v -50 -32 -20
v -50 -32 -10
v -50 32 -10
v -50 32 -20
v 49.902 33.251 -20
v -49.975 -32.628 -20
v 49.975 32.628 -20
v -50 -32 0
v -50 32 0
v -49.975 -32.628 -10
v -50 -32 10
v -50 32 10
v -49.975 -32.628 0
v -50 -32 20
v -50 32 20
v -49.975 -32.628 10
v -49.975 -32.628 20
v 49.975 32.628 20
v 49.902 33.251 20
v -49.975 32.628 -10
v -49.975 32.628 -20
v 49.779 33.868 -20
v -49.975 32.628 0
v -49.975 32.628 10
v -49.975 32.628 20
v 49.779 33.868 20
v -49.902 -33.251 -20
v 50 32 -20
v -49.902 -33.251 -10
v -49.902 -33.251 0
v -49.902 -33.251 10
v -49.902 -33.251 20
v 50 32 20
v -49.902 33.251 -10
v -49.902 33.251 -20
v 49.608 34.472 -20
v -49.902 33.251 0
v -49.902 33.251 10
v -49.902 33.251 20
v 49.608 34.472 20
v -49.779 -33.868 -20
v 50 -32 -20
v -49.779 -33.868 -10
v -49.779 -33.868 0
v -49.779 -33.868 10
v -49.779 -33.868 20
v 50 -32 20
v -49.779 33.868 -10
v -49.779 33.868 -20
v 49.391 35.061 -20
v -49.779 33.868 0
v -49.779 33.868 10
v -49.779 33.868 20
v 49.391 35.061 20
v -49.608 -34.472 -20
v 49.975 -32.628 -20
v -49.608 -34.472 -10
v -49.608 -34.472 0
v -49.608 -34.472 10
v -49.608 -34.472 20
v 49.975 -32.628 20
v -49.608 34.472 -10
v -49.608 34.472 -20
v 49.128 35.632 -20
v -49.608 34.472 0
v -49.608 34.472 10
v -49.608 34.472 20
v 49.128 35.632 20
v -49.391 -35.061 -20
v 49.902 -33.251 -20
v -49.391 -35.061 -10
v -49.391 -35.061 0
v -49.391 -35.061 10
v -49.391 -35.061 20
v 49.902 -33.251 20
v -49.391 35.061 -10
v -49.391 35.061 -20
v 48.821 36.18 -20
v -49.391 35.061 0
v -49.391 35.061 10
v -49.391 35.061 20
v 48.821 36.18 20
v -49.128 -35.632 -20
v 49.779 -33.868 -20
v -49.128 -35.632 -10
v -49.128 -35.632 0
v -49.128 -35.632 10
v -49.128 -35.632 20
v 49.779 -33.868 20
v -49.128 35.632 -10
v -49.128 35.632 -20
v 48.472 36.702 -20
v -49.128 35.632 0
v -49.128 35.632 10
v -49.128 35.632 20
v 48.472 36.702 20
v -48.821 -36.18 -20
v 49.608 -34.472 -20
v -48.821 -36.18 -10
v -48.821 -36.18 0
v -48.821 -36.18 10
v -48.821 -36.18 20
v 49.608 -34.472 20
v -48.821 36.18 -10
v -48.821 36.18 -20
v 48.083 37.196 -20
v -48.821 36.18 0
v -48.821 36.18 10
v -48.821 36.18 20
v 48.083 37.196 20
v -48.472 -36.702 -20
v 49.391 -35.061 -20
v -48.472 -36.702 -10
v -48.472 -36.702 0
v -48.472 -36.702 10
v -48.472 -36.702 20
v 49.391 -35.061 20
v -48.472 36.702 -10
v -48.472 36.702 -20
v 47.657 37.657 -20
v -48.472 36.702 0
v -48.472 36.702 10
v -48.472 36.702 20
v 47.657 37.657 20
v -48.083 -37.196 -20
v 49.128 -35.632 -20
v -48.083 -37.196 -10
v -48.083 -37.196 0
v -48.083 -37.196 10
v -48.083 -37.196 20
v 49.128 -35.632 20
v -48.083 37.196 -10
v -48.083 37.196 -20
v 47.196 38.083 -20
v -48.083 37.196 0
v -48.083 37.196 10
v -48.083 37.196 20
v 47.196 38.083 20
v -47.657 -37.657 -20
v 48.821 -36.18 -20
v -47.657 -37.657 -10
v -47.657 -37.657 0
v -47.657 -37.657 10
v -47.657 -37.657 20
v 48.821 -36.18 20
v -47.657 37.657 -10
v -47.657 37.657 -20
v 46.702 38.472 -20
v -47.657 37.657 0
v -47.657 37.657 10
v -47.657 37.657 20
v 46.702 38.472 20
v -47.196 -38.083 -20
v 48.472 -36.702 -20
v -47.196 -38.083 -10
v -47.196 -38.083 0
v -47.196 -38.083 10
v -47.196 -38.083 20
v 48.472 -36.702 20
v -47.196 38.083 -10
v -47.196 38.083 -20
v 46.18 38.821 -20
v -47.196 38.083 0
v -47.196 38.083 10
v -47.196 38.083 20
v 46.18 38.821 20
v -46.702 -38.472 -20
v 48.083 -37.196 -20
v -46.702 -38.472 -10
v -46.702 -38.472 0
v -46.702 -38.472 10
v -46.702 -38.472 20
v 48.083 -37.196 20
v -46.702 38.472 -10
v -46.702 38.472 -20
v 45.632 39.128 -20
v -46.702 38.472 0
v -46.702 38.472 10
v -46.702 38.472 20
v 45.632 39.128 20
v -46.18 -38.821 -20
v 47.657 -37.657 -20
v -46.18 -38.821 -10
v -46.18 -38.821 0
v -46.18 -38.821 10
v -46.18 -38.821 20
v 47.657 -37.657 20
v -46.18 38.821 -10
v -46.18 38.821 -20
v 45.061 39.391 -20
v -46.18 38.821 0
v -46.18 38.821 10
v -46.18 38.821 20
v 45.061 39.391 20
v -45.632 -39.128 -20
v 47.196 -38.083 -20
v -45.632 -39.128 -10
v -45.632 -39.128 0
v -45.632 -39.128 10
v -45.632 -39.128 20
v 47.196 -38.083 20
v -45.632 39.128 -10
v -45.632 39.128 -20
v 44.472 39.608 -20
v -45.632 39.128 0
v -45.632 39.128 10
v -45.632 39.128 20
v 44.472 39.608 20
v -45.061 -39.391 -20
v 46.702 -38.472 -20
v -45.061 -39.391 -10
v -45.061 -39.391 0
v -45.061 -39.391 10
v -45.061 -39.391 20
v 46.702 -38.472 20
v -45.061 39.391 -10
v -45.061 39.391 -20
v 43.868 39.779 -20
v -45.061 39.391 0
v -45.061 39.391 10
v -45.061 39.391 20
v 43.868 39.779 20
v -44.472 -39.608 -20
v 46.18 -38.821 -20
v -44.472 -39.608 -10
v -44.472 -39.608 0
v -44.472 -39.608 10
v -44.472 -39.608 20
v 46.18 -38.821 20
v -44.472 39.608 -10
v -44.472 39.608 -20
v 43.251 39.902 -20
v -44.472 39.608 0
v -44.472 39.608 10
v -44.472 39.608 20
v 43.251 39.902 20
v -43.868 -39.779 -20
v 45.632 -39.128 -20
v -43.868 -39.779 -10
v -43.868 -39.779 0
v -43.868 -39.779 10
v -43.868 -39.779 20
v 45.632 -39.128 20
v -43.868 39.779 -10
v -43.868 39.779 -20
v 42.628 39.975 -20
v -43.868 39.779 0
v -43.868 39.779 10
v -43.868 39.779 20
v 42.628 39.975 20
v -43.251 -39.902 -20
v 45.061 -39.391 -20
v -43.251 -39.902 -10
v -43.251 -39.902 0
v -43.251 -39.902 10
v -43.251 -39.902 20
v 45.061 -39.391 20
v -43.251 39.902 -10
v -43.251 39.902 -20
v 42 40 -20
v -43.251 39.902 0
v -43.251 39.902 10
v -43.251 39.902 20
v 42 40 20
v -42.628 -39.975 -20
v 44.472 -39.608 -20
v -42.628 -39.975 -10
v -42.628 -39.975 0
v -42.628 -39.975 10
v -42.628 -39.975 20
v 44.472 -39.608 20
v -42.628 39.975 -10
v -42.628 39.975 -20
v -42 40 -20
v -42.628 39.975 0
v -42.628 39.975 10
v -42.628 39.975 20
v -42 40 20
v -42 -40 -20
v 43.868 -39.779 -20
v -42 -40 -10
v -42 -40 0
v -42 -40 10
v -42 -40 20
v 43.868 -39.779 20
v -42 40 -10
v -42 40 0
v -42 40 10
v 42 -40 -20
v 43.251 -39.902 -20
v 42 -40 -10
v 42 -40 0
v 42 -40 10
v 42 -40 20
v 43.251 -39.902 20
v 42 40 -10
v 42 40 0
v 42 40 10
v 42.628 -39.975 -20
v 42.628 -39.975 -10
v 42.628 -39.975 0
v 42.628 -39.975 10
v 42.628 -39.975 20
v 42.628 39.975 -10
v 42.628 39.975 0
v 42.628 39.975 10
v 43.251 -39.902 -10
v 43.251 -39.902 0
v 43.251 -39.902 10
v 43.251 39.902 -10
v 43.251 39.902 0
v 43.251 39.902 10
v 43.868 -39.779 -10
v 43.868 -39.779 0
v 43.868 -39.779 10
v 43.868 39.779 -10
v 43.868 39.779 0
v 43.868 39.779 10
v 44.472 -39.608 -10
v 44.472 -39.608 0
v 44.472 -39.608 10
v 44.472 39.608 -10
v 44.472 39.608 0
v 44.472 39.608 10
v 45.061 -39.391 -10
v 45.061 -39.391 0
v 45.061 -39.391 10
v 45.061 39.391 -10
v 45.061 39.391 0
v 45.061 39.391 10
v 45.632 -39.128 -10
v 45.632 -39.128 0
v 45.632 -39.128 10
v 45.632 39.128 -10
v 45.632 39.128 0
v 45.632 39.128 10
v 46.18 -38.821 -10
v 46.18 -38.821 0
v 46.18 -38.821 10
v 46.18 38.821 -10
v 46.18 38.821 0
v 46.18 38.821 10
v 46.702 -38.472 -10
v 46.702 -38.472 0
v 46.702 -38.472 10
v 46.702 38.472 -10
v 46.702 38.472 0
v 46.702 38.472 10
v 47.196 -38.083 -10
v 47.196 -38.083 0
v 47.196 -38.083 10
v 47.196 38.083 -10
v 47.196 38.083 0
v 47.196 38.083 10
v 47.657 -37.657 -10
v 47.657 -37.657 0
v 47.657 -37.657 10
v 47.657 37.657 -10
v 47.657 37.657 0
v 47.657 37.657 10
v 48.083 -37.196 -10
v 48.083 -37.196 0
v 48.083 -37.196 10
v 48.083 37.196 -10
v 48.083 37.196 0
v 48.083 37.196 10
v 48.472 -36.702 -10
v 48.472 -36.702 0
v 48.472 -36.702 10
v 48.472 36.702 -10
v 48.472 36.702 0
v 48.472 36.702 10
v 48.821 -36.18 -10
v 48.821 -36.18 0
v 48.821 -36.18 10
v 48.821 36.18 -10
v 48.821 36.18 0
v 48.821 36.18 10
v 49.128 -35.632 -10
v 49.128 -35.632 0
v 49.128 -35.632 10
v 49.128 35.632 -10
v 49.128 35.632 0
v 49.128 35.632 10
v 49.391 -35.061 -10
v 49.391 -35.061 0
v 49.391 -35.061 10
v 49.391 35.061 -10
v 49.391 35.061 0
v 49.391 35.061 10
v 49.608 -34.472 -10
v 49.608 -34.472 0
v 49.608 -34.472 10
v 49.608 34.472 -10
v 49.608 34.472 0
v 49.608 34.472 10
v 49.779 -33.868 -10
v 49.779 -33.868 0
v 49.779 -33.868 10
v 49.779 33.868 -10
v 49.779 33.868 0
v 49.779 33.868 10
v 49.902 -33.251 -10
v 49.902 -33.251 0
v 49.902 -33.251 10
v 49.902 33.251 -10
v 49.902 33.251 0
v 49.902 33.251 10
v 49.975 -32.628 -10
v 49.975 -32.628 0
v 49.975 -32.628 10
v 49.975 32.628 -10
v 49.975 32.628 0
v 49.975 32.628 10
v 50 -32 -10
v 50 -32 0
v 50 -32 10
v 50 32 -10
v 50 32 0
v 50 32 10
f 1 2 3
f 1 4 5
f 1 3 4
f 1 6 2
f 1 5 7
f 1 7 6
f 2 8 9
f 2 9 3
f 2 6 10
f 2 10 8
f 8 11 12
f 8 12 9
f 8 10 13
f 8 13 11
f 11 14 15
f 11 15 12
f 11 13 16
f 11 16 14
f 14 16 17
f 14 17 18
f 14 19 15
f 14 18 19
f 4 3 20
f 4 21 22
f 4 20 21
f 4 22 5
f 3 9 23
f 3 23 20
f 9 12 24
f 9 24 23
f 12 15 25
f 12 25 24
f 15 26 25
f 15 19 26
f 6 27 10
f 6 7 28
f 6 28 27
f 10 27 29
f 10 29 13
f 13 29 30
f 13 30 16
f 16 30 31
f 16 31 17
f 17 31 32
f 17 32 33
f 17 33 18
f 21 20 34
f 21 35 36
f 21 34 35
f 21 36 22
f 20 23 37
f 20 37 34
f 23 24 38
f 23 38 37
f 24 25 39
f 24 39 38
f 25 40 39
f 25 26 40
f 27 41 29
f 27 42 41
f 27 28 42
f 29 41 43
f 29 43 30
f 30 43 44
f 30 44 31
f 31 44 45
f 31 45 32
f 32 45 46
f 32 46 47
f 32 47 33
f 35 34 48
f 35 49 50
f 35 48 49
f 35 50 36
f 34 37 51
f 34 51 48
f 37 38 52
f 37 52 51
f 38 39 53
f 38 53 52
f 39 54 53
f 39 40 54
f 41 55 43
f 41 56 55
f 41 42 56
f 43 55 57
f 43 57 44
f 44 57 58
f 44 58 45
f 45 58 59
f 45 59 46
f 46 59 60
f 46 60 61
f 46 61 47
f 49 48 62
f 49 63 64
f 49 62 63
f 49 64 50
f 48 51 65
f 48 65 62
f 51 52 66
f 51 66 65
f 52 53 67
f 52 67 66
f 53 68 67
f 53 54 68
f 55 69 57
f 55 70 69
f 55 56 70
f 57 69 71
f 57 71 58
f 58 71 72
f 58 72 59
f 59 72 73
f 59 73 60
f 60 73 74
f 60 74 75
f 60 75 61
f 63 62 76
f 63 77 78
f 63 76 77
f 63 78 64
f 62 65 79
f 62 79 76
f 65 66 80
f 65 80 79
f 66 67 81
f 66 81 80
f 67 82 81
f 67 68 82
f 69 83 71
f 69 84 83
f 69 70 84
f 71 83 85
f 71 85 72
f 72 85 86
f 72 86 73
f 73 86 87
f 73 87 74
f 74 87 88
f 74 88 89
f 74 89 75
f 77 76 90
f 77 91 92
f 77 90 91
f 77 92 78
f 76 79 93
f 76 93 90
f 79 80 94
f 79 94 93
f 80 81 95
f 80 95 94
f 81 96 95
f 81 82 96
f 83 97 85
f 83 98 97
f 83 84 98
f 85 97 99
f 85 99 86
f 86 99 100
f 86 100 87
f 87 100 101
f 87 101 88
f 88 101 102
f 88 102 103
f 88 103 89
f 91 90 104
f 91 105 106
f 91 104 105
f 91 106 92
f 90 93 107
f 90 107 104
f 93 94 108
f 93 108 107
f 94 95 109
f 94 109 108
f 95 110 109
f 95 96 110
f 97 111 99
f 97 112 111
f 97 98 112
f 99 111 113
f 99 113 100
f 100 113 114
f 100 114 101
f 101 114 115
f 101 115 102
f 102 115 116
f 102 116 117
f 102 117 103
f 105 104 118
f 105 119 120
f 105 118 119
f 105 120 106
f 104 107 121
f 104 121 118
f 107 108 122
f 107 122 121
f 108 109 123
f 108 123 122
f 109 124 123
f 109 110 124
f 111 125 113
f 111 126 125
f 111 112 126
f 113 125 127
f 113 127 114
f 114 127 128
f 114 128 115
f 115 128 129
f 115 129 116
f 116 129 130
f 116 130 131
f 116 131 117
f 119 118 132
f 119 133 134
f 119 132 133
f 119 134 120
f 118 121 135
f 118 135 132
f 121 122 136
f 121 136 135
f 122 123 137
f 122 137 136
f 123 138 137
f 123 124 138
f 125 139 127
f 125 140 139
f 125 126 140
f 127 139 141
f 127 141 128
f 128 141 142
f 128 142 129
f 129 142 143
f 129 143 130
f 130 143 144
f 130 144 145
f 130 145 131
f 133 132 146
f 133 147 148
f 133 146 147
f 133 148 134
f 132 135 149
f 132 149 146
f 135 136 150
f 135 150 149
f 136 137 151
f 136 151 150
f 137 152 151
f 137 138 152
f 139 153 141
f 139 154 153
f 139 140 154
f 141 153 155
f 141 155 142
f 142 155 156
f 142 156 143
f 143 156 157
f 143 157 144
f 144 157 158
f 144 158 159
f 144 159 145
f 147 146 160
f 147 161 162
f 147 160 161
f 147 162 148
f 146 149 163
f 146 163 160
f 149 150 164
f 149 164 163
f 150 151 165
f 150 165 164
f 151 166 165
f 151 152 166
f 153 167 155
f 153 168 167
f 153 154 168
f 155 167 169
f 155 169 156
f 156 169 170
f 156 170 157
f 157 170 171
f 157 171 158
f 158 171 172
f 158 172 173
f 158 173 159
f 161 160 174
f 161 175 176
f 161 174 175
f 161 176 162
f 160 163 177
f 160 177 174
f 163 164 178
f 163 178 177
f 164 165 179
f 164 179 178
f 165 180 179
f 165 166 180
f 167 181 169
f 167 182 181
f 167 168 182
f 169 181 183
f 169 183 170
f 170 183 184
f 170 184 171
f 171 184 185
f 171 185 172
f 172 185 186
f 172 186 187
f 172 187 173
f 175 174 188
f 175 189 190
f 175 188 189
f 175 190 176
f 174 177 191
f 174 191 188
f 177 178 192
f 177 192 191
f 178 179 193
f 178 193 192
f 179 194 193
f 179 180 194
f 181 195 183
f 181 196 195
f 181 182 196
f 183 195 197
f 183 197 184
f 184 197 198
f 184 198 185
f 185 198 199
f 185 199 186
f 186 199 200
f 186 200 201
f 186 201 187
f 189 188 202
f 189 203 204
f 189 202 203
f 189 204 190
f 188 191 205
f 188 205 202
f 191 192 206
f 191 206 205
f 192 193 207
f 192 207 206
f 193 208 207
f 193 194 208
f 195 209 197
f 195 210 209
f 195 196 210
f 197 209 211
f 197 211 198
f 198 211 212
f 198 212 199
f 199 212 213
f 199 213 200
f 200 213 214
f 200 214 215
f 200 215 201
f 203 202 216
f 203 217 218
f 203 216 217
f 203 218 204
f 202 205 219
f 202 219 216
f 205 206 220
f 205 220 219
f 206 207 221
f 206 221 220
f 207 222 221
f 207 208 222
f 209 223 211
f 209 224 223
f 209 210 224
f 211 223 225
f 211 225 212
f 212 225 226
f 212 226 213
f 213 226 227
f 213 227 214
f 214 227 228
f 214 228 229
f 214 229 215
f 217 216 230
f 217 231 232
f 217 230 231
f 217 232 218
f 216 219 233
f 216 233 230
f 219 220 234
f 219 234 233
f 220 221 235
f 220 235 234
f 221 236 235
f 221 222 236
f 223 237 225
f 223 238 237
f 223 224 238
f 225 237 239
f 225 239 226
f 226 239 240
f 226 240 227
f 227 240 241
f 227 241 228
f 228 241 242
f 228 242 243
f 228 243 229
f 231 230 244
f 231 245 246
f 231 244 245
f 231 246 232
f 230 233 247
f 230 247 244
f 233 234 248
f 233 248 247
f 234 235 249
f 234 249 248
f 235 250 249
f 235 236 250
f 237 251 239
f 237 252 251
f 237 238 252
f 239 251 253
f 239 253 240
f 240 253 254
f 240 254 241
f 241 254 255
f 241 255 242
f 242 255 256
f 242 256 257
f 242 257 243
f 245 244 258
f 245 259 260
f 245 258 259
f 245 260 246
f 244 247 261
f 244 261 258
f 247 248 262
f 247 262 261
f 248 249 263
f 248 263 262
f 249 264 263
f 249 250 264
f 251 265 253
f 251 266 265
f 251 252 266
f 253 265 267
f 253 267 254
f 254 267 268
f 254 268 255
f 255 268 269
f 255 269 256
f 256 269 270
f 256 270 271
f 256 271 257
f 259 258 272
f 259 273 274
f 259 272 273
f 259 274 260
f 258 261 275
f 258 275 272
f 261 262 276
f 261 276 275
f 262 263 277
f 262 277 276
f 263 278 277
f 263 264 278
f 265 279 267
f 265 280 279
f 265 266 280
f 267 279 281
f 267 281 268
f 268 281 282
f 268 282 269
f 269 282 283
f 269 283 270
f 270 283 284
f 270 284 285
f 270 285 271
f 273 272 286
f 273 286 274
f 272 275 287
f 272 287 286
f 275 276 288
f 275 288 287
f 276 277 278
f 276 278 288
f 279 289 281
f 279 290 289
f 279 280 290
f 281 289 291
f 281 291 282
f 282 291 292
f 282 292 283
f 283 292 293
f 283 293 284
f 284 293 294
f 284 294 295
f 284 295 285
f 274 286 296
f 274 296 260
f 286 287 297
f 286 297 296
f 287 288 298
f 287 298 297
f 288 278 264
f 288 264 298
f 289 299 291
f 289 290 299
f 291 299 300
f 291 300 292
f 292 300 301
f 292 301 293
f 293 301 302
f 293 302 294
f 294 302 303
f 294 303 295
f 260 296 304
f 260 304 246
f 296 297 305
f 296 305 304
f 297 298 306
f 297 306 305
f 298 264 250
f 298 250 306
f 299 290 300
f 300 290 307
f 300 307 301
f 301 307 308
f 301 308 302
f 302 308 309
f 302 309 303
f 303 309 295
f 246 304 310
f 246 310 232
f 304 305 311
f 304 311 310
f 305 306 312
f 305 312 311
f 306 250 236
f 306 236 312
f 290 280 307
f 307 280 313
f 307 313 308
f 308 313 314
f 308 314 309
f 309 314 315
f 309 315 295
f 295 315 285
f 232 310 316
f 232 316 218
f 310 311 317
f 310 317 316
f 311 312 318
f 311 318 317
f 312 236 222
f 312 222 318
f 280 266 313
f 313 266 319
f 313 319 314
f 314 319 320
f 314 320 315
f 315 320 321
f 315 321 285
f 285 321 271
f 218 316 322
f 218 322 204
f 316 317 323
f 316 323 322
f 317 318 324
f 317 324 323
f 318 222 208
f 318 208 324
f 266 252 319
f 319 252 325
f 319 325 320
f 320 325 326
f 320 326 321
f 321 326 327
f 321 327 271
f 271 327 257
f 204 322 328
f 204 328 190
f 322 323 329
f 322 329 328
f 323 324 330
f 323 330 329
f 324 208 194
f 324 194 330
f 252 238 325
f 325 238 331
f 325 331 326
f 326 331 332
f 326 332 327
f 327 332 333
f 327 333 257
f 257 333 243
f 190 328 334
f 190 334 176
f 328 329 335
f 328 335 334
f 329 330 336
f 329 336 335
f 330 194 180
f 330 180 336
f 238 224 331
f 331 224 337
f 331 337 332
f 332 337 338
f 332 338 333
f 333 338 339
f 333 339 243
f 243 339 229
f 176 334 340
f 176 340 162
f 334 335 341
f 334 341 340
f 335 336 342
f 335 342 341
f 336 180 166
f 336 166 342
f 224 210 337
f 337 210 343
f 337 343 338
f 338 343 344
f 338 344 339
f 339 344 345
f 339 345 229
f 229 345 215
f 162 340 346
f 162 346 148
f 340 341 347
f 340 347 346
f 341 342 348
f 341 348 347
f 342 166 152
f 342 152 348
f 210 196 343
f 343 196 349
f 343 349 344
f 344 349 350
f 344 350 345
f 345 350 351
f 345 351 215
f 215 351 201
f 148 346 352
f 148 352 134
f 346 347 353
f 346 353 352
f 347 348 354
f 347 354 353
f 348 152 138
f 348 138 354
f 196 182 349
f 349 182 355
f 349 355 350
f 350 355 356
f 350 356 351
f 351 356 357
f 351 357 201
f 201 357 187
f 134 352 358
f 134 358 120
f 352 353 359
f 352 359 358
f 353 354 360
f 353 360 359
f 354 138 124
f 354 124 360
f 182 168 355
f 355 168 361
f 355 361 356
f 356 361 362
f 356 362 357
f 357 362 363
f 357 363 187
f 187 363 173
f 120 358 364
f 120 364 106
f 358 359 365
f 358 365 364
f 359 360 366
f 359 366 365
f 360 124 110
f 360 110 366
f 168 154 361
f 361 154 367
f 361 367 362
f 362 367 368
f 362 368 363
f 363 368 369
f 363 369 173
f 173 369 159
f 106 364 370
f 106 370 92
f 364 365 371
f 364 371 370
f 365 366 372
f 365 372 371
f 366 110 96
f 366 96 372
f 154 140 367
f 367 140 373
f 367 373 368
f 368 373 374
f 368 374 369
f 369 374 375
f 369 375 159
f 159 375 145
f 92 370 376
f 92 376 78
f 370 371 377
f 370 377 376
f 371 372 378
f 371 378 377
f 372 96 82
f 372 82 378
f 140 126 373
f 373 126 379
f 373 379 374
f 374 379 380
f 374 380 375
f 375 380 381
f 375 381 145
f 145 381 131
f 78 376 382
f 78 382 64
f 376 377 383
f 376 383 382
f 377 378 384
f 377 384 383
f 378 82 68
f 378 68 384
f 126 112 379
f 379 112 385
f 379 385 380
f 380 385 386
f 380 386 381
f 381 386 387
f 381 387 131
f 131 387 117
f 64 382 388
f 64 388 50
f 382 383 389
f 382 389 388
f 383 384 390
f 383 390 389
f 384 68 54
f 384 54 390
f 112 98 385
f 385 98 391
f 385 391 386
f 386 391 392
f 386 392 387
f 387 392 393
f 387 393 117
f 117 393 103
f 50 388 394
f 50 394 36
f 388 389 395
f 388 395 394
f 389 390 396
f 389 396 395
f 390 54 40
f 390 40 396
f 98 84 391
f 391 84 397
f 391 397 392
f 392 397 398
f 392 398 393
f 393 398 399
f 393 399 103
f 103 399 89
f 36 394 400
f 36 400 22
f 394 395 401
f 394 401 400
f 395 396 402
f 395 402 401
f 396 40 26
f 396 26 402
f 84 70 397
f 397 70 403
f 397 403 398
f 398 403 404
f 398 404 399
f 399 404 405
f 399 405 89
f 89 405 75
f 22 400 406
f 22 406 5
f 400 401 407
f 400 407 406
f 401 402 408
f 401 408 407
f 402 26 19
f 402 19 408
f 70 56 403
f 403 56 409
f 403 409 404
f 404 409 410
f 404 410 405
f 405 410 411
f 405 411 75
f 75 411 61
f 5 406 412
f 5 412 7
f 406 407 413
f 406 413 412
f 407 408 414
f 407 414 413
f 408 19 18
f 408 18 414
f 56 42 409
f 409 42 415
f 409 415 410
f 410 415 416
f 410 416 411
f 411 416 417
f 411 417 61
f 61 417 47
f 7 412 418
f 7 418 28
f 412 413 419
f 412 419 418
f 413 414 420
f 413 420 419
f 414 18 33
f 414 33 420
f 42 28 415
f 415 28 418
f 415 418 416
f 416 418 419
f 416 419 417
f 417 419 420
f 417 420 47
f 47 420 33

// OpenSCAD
// Start: lazy_union
default_5_default_5();
// End: lazy_union

// Modules.

// 'PartMaterial undef-default - default 5.0'
module default_5_default_5() {
  // 'None : _combine_solids_and_holes'
  union() {
    // 'default : _combine_solids_and_holes'
    union() {
      // 'hull'
      multmatrix(m=[[1.0, 0.0, 0.0, -50.0], [0.0, 1.0, 0.0, -40.0], [0.0, 0.0, 1.0, -20.0], [0.0, 0.0, 0.0, 1.0]]) {
        // 'hull : _combine_solids_and_holes'
        union() {
          // 'hull'
          linear_extrude(height=40.0, twist=0.0, slices=4, scale=[1.0, 1.0]) {
            polygon(points=[[8.0, 0.0], [92.0, 0.0], [92.62767276582277, 0.024661330134974513], [93.25147572032185, 0.09849327523889428], [93.86756291084724, 0.22104063681858133], [94.47213595499959, 0.39154786963876553], [95.06146745892073, 0.6089637399096981], [95.63192399791639, 0.8719478064930488], [96.1799885177276, 1.1788786851672537], [96.7022820183398, 1.5278640450004124], [97.19558438664149, 1.9167522751997437], [97.6568542494924, 2.3431457505076114], [98.08324772480026, 2.8044156133585236], [98.47213595499959, 3.297717981660207], [98.82112131483275, 3.8200114822724034], [99.12805219350696, 4.368076002083621], [99.3910362600903, 4.938532541079277], [99.60845213036124, 5.527864045000419], [99.77895936318143, 6.132437089152755], [99.90150672476112, 6.7485242796781515], [99.97533866986504, 7.37232723417724], [100.00000000000001, 8.0], [100.0, 72.0], [99.97533866986502, 72.62767276582277], [99.9015067247611, 73.25147572032185], [99.77895936318141, 73.86756291084724], [99.60845213036123, 74.47213595499957], [99.39103626009029, 75.06146745892072], [99.12805219350695, 75.63192399791637], [98.82112131483274, 76.17998851772758], [98.47213595499957, 76.70228201833977], [98.08324772480024, 77.19558438664146], [97.65685424949238, 77.65685424949237], [97.19558438664147, 78.08324772480023], [96.70228201833979, 78.47213595499957], [96.1799885177276, 78.82112131483272], [95.63192399791637, 79.12805219350693], [95.06146745892072, 79.39103626009027], [94.47213595499957, 79.60845213036121], [93.86756291084724, 79.77895936318139], [93.25147572032185, 79.90150672476108], [92.62767276582277, 79.975338669865], [92.0, 79.99999999999997], [8.0, 80.0], [7.37232723417724, 79.97533866986502], [6.748524279678152, 79.9015067247611], [6.132437089152757, 79.77895936318141], [5.52786404500042, 79.60845213036123], [4.938532541079281, 79.39103626009029], [4.368076002083625, 79.12805219350695], [3.8200114822724087, 78.82112131483274], [3.297717981660215, 78.47213595499957], [2.8044156133585307, 78.08324772480024], [2.3431457505076194, 77.65685424949238], [1.9167522751997517, 77.19558438664147], [1.5278640450004204, 76.70228201833979], [1.1788786851672617, 76.1799885177276], [0.8719478064930568, 75.63192399791637], [0.6089637399097052, 75.06146745892072], [0.39154786963877086, 74.47213595499959], [0.22104063681858666, 73.86756291084724], [0.09849327523889784, 73.25147572032185], [0.0246613301349754, 72.62767276582277], [-8.881784197001252e-16, 72.0], [0.0, 8.0], [0.02466133013497629, 7.372327234177241], [0.09849327523889784, 6.748524279678153], [0.22104063681858666, 6.1324370891527575], [0.39154786963877086, 5.527864045000421], [0.6089637399097052, 4.938532541079282], [0.8719478064930568, 4.368076002083626], [1.1788786851672617, 3.8200114822724105], [1.5278640450004204, 3.297717981660216], [1.9167522751997517, 2.8044156133585316], [2.3431457505076185, 2.3431457505076203], [2.8044156133585325, 1.9167522751997508], [3.297717981660214, 1.5278640450004213], [3.8200114822724114, 1.1788786851672608], [4.368076002083624, 0.8719478064930577], [4.938532541079277, 0.6089637399097079], [5.527864045000419, 0.39154786963877175], [6.132437089152758, 0.22104063681858666], [6.748524279678151, 0.09849327523889873], [7.372327234177234, 0.02466133013497629]]);
          }
        }
      }
    }
  }
} // end module default_5_default_5
